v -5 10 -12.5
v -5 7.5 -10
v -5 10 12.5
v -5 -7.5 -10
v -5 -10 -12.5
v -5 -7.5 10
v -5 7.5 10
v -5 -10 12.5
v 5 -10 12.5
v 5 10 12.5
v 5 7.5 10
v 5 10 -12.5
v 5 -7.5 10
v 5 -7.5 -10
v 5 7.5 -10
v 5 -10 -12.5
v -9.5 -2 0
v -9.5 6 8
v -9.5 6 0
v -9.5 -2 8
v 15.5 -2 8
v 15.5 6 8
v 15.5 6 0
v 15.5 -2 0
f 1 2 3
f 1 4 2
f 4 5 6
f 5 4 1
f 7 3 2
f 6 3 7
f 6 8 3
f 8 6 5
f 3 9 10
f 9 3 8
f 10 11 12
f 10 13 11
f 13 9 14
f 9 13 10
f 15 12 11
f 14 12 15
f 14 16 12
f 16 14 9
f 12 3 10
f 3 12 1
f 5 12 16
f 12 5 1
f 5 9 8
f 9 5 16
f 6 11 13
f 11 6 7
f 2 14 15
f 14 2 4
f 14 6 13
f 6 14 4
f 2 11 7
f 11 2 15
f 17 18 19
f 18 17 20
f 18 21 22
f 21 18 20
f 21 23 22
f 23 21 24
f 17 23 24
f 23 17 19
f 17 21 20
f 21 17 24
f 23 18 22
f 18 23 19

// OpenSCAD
render() difference()
{
	cube([10,20,25], center=true);
	cube([20,15,20], center=true);
}

translate([3,2,4]) cube([25,8,8], center=true);
